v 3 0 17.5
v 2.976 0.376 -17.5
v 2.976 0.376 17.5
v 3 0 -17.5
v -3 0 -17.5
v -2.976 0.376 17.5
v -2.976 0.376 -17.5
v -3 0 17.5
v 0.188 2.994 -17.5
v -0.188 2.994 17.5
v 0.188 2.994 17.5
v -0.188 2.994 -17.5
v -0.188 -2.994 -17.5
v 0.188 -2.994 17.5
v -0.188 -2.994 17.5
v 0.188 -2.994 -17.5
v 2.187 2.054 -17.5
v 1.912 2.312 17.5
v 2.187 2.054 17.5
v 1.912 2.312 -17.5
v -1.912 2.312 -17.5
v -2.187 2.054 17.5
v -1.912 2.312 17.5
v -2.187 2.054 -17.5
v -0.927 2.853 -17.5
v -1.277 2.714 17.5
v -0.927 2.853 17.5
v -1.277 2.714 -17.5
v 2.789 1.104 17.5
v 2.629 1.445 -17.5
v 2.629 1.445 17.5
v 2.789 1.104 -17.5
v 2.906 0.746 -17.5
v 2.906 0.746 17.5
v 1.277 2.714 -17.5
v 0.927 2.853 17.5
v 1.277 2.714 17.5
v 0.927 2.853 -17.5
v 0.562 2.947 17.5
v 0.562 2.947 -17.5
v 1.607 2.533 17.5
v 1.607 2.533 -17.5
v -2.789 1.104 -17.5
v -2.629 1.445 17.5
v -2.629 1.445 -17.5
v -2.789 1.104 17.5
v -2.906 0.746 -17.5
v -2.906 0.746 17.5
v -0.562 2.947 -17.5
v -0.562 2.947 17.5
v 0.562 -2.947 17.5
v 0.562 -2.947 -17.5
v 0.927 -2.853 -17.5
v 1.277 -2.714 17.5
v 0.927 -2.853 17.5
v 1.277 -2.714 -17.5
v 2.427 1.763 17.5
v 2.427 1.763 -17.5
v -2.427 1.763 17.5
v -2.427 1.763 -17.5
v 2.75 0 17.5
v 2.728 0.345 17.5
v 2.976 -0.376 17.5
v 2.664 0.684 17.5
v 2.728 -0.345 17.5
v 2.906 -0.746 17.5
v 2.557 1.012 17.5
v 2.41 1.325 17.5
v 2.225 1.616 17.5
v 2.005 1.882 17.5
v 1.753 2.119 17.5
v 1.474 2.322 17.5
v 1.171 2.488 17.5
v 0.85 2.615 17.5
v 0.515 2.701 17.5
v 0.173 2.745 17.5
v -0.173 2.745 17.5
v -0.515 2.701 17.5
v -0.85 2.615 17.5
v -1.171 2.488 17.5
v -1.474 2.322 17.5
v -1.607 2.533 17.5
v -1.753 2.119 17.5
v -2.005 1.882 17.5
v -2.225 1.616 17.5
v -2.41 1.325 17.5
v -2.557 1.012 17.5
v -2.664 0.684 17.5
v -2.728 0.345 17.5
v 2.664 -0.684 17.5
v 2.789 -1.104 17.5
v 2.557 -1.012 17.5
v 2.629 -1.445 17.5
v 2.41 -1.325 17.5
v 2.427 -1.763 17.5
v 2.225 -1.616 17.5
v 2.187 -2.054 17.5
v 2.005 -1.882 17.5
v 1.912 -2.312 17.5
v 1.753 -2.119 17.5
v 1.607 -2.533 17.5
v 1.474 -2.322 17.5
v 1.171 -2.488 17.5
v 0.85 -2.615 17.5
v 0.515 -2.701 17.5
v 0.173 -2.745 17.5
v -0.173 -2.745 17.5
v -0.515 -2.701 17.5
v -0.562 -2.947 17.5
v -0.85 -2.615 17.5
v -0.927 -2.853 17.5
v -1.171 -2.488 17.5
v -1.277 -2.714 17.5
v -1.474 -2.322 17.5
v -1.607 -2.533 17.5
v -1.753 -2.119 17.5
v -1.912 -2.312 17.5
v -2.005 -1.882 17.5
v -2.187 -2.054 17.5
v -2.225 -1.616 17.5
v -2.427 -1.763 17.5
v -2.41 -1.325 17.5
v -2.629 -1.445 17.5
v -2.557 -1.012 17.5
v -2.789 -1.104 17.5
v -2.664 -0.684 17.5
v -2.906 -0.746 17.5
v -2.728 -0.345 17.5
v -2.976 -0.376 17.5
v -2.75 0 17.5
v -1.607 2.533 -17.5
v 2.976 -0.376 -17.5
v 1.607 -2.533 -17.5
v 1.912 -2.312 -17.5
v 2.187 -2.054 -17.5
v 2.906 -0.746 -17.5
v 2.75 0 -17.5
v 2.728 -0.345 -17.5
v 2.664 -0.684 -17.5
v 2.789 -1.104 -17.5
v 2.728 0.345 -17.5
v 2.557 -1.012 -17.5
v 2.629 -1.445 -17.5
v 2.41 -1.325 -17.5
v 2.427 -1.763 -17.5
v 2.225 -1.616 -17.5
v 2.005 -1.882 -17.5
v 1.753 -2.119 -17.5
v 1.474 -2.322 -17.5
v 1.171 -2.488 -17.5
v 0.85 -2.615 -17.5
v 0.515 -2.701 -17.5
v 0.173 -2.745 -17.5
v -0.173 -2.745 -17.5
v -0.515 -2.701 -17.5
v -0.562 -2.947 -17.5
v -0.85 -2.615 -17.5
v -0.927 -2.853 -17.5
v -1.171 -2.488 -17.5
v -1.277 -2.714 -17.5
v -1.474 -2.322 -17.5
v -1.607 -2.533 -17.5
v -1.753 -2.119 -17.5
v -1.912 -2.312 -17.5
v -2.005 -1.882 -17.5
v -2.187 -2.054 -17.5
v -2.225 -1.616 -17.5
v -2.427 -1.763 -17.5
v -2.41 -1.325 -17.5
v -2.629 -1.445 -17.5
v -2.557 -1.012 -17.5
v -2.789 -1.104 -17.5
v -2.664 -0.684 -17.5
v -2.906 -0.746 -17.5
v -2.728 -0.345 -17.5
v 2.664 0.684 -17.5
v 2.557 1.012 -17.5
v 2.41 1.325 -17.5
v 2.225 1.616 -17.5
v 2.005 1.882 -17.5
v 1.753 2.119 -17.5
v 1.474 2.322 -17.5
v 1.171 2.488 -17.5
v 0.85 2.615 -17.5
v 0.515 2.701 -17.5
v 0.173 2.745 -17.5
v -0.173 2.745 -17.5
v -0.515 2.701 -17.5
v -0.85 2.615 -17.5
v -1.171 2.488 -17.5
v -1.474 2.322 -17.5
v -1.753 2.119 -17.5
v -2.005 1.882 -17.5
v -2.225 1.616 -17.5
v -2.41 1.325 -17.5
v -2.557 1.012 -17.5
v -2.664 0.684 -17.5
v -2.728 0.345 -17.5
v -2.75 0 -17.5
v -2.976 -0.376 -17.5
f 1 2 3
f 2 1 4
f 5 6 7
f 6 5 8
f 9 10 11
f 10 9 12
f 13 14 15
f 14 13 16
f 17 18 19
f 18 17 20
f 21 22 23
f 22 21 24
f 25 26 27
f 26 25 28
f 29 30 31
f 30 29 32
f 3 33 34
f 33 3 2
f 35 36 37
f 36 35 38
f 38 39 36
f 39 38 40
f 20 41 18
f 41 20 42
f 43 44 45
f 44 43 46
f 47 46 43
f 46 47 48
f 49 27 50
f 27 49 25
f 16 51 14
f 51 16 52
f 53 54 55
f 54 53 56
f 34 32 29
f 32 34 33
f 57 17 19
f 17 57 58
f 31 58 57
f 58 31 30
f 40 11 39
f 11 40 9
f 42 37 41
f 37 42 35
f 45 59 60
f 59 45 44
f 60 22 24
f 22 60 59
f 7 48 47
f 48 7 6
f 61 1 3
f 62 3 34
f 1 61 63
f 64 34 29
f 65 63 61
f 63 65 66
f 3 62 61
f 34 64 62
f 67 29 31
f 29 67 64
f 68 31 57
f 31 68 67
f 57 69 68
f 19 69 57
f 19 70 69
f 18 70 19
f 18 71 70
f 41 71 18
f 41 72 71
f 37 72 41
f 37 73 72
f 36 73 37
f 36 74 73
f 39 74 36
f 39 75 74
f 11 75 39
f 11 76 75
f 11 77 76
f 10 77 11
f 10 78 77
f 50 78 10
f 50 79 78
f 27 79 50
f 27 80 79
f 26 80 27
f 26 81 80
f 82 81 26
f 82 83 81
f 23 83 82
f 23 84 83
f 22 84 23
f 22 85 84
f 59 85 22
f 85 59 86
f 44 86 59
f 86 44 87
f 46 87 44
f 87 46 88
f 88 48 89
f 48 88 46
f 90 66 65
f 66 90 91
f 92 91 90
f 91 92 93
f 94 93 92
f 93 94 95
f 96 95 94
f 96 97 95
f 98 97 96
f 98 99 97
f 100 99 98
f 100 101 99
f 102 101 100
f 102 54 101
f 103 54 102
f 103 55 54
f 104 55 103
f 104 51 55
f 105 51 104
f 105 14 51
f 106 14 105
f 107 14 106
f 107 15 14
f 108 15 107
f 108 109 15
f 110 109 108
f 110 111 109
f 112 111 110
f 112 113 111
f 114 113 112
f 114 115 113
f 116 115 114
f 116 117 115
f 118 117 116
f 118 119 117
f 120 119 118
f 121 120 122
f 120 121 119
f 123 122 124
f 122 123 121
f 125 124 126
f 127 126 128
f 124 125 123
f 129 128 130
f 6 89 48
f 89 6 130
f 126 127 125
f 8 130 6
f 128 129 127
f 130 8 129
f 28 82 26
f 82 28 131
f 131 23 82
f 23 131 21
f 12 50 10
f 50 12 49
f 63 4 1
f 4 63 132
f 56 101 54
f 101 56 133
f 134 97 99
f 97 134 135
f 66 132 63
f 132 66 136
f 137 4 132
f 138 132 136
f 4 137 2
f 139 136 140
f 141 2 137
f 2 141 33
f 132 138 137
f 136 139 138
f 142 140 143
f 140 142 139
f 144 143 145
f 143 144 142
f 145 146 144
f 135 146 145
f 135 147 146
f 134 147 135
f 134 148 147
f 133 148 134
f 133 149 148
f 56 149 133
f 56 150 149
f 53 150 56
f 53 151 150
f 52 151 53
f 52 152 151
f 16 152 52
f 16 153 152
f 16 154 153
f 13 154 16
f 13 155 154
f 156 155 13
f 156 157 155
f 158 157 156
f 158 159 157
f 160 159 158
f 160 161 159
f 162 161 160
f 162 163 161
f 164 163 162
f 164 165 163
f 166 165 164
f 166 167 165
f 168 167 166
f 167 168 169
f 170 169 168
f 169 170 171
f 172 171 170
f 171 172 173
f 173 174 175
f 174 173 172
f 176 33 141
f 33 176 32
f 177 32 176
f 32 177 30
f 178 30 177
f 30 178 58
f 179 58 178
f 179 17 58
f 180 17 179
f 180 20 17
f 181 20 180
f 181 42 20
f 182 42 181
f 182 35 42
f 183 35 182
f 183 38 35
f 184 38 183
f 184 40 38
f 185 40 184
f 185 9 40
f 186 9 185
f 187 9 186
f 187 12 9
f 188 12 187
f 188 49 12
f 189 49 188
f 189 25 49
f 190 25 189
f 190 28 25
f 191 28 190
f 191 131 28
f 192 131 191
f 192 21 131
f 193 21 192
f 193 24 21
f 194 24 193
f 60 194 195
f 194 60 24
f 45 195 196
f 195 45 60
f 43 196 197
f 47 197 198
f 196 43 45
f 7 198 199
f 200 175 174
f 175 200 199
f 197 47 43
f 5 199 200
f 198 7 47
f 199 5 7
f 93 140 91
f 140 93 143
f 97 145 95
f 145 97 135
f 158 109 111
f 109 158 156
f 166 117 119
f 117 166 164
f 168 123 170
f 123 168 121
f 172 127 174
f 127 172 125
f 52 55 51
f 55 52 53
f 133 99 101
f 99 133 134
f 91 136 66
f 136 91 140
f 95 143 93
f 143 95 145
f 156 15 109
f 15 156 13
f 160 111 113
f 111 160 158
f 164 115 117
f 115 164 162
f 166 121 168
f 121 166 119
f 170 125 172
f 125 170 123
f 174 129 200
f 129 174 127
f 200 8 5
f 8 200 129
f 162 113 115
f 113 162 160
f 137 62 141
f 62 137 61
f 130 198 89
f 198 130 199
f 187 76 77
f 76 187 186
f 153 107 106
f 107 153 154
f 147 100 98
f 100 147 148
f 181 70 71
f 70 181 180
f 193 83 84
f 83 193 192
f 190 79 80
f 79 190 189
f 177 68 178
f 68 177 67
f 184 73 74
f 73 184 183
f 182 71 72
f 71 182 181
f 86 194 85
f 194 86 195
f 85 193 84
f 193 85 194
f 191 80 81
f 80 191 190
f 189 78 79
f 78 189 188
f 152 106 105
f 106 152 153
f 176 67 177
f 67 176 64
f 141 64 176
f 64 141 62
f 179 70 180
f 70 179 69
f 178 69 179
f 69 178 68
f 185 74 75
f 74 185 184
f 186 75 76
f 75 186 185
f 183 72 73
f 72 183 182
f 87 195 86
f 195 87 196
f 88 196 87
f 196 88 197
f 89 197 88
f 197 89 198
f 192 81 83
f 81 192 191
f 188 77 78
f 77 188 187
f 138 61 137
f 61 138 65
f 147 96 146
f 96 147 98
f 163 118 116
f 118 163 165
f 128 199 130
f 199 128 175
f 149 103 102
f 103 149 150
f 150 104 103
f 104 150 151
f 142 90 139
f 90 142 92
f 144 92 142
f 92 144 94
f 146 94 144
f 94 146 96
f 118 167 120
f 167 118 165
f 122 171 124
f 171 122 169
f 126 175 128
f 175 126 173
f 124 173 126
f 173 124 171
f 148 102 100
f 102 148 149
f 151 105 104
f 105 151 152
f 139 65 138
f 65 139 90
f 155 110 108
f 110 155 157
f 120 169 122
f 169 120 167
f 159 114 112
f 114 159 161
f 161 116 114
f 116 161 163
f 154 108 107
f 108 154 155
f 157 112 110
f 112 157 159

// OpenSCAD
$fn = 50;


difference() {
	union() {
		translate(v = [0, 0, -17.5000000000]) {
			cylinder(h = 35, r = 3.0000000000);
		}
	}
	union() {
		translate(v = [0, 0, -100.0000000000]) {
			cylinder(h = 200, r = 2.7500000000);
		}
	}
}
